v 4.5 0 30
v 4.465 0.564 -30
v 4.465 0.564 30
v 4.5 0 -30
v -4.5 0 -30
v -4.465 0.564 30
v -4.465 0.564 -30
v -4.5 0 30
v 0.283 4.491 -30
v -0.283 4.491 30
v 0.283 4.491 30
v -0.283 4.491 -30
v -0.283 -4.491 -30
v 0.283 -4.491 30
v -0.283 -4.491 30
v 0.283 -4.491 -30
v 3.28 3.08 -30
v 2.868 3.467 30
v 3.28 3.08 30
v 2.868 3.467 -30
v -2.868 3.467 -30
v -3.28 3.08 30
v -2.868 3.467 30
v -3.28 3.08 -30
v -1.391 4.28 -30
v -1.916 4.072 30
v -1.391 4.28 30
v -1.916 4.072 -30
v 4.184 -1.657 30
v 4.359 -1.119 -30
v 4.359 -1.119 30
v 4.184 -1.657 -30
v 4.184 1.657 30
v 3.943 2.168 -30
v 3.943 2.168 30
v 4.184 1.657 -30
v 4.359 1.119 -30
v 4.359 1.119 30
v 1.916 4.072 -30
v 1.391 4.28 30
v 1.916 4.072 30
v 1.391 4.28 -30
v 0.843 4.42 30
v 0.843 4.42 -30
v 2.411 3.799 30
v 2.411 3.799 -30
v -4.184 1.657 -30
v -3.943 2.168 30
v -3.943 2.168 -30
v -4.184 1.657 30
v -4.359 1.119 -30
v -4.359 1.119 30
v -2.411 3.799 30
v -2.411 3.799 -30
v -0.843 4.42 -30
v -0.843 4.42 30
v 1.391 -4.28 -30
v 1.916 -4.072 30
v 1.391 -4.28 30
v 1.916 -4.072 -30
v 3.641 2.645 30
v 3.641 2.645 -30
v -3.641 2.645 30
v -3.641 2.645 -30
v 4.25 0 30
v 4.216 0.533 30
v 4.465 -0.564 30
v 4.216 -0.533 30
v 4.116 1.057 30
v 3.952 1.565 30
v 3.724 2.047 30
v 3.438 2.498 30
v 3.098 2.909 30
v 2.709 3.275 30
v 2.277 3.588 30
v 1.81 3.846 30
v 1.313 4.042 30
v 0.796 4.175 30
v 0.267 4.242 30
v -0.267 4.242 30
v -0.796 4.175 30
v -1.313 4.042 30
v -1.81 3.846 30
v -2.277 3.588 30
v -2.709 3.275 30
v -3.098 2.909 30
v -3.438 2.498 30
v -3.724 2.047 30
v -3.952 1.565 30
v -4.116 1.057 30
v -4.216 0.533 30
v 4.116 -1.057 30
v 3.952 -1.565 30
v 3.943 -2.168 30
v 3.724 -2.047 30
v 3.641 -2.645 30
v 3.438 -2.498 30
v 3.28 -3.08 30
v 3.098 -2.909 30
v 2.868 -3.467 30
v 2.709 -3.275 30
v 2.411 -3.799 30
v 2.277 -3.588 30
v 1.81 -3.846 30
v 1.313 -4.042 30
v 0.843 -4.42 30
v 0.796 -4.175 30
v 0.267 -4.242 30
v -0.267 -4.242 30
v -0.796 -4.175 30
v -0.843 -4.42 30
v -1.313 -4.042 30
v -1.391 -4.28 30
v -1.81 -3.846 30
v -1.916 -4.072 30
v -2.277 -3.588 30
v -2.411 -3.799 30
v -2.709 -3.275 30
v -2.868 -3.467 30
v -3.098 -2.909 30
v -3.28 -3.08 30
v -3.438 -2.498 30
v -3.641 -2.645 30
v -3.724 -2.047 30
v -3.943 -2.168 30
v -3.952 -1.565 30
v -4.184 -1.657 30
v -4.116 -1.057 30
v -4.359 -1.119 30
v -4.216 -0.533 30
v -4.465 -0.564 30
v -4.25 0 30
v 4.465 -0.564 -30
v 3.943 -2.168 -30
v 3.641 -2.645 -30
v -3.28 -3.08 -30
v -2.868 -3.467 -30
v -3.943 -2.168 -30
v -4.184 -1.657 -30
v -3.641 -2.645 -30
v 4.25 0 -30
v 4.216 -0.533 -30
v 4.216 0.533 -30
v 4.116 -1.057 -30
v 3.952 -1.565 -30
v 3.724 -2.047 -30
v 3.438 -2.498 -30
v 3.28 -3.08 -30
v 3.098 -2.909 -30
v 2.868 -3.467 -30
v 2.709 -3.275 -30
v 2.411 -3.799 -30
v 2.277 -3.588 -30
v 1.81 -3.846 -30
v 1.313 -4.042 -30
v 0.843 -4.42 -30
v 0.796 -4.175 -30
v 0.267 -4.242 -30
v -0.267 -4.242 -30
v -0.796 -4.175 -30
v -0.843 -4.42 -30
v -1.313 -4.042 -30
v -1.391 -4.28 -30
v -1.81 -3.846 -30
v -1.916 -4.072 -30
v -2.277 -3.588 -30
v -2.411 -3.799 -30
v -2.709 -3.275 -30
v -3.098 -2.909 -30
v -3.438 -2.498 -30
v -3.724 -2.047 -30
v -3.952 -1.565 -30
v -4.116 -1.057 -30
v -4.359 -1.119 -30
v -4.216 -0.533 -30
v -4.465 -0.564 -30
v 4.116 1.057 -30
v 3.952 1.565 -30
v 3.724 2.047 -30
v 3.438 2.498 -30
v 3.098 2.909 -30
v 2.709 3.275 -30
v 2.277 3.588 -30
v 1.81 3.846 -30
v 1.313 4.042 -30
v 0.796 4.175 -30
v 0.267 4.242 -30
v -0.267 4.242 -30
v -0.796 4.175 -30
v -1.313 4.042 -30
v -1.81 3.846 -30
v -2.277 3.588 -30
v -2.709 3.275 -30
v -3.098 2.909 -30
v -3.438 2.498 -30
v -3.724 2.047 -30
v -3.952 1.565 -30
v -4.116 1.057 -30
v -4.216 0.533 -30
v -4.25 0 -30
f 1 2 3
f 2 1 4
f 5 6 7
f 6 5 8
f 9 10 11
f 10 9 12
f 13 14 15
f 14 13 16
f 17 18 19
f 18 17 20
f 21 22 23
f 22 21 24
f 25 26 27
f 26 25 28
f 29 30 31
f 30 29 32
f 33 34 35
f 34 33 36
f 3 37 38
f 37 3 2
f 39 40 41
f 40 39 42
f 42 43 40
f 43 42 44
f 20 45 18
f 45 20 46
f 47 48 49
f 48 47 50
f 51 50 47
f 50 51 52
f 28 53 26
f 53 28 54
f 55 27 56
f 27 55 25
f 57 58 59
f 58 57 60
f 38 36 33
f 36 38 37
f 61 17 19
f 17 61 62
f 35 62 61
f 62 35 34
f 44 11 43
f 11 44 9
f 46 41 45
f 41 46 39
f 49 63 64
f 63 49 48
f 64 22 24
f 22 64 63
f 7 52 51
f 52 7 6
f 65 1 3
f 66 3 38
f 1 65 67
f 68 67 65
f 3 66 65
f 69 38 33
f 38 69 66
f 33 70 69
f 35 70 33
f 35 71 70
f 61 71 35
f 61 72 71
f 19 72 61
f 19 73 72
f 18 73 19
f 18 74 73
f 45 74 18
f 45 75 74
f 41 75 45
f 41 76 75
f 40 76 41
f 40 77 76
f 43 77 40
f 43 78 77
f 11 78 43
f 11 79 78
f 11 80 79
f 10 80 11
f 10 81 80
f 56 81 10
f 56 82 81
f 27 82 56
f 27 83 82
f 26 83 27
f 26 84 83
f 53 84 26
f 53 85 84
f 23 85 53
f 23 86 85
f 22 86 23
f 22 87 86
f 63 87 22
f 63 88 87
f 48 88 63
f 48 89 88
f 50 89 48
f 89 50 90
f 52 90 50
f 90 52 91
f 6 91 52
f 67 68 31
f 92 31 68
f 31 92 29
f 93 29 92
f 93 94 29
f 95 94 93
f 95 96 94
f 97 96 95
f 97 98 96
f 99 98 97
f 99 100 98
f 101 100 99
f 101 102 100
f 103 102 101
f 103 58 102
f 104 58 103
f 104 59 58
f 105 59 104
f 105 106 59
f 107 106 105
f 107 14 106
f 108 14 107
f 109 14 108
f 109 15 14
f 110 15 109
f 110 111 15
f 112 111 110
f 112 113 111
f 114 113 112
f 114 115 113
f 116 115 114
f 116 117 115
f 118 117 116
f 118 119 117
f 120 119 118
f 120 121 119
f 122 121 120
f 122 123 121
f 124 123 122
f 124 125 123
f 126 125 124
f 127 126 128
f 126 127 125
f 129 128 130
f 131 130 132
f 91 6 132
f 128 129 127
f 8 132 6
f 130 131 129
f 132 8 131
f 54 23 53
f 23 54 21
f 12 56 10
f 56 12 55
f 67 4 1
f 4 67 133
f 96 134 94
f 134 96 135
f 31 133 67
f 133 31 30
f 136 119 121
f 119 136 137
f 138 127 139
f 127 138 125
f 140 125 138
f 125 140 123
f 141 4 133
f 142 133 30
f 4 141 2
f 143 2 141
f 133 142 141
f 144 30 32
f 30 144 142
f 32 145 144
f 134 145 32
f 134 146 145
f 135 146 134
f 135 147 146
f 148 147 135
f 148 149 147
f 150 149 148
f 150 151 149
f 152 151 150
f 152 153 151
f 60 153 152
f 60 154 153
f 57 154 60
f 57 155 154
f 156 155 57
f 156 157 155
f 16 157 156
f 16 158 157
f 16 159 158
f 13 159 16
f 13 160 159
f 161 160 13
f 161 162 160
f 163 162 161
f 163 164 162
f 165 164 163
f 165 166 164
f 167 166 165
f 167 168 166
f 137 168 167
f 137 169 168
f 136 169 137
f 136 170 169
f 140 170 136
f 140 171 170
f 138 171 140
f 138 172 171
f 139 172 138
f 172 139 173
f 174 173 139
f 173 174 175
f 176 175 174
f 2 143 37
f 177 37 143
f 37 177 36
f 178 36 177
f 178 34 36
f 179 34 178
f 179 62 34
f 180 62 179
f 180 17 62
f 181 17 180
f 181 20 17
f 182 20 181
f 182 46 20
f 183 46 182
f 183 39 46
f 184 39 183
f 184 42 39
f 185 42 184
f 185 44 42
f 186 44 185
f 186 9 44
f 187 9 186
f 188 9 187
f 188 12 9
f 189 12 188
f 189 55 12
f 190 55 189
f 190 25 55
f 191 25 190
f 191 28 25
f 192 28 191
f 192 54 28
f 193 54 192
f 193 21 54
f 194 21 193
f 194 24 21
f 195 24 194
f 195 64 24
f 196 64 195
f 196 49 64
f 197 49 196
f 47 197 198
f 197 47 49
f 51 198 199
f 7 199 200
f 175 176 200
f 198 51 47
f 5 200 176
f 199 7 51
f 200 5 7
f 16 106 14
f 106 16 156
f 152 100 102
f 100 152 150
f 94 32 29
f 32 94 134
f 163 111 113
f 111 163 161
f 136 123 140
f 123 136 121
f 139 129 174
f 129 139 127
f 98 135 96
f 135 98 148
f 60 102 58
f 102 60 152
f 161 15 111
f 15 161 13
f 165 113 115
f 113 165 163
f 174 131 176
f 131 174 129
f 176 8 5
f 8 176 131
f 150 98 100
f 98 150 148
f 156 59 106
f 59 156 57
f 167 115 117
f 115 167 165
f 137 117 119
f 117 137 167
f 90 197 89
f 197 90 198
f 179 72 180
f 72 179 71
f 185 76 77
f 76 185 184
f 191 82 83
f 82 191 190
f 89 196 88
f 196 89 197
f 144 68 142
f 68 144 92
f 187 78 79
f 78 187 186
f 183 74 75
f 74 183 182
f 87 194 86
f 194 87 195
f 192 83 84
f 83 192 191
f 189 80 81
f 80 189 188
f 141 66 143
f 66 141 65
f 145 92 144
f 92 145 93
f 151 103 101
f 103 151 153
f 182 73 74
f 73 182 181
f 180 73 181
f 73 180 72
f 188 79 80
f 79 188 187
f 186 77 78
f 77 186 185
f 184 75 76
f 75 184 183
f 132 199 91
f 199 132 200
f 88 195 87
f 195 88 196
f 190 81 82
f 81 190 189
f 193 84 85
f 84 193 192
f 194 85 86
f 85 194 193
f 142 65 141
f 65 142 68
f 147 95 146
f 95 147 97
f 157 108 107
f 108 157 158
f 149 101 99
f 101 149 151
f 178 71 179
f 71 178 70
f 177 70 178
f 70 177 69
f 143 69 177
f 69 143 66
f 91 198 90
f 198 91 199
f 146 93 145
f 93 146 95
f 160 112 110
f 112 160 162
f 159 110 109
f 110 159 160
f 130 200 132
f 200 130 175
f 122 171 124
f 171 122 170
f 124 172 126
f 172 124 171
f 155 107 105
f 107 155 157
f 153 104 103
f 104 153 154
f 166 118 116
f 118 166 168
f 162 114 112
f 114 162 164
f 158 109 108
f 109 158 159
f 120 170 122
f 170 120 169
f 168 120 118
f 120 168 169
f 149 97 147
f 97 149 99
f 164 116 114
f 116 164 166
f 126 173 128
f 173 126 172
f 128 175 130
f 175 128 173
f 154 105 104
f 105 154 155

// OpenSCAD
$fn = 50;


difference() {
	union() {
		translate(v = [0, 0, -30.0000000000]) {
			cylinder(h = 60, r = 4.5000000000);
		}
	}
	union() {
		translate(v = [0, 0, -100.0000000000]) {
			cylinder(h = 200, r = 4.2500000000);
		}
	}
}
